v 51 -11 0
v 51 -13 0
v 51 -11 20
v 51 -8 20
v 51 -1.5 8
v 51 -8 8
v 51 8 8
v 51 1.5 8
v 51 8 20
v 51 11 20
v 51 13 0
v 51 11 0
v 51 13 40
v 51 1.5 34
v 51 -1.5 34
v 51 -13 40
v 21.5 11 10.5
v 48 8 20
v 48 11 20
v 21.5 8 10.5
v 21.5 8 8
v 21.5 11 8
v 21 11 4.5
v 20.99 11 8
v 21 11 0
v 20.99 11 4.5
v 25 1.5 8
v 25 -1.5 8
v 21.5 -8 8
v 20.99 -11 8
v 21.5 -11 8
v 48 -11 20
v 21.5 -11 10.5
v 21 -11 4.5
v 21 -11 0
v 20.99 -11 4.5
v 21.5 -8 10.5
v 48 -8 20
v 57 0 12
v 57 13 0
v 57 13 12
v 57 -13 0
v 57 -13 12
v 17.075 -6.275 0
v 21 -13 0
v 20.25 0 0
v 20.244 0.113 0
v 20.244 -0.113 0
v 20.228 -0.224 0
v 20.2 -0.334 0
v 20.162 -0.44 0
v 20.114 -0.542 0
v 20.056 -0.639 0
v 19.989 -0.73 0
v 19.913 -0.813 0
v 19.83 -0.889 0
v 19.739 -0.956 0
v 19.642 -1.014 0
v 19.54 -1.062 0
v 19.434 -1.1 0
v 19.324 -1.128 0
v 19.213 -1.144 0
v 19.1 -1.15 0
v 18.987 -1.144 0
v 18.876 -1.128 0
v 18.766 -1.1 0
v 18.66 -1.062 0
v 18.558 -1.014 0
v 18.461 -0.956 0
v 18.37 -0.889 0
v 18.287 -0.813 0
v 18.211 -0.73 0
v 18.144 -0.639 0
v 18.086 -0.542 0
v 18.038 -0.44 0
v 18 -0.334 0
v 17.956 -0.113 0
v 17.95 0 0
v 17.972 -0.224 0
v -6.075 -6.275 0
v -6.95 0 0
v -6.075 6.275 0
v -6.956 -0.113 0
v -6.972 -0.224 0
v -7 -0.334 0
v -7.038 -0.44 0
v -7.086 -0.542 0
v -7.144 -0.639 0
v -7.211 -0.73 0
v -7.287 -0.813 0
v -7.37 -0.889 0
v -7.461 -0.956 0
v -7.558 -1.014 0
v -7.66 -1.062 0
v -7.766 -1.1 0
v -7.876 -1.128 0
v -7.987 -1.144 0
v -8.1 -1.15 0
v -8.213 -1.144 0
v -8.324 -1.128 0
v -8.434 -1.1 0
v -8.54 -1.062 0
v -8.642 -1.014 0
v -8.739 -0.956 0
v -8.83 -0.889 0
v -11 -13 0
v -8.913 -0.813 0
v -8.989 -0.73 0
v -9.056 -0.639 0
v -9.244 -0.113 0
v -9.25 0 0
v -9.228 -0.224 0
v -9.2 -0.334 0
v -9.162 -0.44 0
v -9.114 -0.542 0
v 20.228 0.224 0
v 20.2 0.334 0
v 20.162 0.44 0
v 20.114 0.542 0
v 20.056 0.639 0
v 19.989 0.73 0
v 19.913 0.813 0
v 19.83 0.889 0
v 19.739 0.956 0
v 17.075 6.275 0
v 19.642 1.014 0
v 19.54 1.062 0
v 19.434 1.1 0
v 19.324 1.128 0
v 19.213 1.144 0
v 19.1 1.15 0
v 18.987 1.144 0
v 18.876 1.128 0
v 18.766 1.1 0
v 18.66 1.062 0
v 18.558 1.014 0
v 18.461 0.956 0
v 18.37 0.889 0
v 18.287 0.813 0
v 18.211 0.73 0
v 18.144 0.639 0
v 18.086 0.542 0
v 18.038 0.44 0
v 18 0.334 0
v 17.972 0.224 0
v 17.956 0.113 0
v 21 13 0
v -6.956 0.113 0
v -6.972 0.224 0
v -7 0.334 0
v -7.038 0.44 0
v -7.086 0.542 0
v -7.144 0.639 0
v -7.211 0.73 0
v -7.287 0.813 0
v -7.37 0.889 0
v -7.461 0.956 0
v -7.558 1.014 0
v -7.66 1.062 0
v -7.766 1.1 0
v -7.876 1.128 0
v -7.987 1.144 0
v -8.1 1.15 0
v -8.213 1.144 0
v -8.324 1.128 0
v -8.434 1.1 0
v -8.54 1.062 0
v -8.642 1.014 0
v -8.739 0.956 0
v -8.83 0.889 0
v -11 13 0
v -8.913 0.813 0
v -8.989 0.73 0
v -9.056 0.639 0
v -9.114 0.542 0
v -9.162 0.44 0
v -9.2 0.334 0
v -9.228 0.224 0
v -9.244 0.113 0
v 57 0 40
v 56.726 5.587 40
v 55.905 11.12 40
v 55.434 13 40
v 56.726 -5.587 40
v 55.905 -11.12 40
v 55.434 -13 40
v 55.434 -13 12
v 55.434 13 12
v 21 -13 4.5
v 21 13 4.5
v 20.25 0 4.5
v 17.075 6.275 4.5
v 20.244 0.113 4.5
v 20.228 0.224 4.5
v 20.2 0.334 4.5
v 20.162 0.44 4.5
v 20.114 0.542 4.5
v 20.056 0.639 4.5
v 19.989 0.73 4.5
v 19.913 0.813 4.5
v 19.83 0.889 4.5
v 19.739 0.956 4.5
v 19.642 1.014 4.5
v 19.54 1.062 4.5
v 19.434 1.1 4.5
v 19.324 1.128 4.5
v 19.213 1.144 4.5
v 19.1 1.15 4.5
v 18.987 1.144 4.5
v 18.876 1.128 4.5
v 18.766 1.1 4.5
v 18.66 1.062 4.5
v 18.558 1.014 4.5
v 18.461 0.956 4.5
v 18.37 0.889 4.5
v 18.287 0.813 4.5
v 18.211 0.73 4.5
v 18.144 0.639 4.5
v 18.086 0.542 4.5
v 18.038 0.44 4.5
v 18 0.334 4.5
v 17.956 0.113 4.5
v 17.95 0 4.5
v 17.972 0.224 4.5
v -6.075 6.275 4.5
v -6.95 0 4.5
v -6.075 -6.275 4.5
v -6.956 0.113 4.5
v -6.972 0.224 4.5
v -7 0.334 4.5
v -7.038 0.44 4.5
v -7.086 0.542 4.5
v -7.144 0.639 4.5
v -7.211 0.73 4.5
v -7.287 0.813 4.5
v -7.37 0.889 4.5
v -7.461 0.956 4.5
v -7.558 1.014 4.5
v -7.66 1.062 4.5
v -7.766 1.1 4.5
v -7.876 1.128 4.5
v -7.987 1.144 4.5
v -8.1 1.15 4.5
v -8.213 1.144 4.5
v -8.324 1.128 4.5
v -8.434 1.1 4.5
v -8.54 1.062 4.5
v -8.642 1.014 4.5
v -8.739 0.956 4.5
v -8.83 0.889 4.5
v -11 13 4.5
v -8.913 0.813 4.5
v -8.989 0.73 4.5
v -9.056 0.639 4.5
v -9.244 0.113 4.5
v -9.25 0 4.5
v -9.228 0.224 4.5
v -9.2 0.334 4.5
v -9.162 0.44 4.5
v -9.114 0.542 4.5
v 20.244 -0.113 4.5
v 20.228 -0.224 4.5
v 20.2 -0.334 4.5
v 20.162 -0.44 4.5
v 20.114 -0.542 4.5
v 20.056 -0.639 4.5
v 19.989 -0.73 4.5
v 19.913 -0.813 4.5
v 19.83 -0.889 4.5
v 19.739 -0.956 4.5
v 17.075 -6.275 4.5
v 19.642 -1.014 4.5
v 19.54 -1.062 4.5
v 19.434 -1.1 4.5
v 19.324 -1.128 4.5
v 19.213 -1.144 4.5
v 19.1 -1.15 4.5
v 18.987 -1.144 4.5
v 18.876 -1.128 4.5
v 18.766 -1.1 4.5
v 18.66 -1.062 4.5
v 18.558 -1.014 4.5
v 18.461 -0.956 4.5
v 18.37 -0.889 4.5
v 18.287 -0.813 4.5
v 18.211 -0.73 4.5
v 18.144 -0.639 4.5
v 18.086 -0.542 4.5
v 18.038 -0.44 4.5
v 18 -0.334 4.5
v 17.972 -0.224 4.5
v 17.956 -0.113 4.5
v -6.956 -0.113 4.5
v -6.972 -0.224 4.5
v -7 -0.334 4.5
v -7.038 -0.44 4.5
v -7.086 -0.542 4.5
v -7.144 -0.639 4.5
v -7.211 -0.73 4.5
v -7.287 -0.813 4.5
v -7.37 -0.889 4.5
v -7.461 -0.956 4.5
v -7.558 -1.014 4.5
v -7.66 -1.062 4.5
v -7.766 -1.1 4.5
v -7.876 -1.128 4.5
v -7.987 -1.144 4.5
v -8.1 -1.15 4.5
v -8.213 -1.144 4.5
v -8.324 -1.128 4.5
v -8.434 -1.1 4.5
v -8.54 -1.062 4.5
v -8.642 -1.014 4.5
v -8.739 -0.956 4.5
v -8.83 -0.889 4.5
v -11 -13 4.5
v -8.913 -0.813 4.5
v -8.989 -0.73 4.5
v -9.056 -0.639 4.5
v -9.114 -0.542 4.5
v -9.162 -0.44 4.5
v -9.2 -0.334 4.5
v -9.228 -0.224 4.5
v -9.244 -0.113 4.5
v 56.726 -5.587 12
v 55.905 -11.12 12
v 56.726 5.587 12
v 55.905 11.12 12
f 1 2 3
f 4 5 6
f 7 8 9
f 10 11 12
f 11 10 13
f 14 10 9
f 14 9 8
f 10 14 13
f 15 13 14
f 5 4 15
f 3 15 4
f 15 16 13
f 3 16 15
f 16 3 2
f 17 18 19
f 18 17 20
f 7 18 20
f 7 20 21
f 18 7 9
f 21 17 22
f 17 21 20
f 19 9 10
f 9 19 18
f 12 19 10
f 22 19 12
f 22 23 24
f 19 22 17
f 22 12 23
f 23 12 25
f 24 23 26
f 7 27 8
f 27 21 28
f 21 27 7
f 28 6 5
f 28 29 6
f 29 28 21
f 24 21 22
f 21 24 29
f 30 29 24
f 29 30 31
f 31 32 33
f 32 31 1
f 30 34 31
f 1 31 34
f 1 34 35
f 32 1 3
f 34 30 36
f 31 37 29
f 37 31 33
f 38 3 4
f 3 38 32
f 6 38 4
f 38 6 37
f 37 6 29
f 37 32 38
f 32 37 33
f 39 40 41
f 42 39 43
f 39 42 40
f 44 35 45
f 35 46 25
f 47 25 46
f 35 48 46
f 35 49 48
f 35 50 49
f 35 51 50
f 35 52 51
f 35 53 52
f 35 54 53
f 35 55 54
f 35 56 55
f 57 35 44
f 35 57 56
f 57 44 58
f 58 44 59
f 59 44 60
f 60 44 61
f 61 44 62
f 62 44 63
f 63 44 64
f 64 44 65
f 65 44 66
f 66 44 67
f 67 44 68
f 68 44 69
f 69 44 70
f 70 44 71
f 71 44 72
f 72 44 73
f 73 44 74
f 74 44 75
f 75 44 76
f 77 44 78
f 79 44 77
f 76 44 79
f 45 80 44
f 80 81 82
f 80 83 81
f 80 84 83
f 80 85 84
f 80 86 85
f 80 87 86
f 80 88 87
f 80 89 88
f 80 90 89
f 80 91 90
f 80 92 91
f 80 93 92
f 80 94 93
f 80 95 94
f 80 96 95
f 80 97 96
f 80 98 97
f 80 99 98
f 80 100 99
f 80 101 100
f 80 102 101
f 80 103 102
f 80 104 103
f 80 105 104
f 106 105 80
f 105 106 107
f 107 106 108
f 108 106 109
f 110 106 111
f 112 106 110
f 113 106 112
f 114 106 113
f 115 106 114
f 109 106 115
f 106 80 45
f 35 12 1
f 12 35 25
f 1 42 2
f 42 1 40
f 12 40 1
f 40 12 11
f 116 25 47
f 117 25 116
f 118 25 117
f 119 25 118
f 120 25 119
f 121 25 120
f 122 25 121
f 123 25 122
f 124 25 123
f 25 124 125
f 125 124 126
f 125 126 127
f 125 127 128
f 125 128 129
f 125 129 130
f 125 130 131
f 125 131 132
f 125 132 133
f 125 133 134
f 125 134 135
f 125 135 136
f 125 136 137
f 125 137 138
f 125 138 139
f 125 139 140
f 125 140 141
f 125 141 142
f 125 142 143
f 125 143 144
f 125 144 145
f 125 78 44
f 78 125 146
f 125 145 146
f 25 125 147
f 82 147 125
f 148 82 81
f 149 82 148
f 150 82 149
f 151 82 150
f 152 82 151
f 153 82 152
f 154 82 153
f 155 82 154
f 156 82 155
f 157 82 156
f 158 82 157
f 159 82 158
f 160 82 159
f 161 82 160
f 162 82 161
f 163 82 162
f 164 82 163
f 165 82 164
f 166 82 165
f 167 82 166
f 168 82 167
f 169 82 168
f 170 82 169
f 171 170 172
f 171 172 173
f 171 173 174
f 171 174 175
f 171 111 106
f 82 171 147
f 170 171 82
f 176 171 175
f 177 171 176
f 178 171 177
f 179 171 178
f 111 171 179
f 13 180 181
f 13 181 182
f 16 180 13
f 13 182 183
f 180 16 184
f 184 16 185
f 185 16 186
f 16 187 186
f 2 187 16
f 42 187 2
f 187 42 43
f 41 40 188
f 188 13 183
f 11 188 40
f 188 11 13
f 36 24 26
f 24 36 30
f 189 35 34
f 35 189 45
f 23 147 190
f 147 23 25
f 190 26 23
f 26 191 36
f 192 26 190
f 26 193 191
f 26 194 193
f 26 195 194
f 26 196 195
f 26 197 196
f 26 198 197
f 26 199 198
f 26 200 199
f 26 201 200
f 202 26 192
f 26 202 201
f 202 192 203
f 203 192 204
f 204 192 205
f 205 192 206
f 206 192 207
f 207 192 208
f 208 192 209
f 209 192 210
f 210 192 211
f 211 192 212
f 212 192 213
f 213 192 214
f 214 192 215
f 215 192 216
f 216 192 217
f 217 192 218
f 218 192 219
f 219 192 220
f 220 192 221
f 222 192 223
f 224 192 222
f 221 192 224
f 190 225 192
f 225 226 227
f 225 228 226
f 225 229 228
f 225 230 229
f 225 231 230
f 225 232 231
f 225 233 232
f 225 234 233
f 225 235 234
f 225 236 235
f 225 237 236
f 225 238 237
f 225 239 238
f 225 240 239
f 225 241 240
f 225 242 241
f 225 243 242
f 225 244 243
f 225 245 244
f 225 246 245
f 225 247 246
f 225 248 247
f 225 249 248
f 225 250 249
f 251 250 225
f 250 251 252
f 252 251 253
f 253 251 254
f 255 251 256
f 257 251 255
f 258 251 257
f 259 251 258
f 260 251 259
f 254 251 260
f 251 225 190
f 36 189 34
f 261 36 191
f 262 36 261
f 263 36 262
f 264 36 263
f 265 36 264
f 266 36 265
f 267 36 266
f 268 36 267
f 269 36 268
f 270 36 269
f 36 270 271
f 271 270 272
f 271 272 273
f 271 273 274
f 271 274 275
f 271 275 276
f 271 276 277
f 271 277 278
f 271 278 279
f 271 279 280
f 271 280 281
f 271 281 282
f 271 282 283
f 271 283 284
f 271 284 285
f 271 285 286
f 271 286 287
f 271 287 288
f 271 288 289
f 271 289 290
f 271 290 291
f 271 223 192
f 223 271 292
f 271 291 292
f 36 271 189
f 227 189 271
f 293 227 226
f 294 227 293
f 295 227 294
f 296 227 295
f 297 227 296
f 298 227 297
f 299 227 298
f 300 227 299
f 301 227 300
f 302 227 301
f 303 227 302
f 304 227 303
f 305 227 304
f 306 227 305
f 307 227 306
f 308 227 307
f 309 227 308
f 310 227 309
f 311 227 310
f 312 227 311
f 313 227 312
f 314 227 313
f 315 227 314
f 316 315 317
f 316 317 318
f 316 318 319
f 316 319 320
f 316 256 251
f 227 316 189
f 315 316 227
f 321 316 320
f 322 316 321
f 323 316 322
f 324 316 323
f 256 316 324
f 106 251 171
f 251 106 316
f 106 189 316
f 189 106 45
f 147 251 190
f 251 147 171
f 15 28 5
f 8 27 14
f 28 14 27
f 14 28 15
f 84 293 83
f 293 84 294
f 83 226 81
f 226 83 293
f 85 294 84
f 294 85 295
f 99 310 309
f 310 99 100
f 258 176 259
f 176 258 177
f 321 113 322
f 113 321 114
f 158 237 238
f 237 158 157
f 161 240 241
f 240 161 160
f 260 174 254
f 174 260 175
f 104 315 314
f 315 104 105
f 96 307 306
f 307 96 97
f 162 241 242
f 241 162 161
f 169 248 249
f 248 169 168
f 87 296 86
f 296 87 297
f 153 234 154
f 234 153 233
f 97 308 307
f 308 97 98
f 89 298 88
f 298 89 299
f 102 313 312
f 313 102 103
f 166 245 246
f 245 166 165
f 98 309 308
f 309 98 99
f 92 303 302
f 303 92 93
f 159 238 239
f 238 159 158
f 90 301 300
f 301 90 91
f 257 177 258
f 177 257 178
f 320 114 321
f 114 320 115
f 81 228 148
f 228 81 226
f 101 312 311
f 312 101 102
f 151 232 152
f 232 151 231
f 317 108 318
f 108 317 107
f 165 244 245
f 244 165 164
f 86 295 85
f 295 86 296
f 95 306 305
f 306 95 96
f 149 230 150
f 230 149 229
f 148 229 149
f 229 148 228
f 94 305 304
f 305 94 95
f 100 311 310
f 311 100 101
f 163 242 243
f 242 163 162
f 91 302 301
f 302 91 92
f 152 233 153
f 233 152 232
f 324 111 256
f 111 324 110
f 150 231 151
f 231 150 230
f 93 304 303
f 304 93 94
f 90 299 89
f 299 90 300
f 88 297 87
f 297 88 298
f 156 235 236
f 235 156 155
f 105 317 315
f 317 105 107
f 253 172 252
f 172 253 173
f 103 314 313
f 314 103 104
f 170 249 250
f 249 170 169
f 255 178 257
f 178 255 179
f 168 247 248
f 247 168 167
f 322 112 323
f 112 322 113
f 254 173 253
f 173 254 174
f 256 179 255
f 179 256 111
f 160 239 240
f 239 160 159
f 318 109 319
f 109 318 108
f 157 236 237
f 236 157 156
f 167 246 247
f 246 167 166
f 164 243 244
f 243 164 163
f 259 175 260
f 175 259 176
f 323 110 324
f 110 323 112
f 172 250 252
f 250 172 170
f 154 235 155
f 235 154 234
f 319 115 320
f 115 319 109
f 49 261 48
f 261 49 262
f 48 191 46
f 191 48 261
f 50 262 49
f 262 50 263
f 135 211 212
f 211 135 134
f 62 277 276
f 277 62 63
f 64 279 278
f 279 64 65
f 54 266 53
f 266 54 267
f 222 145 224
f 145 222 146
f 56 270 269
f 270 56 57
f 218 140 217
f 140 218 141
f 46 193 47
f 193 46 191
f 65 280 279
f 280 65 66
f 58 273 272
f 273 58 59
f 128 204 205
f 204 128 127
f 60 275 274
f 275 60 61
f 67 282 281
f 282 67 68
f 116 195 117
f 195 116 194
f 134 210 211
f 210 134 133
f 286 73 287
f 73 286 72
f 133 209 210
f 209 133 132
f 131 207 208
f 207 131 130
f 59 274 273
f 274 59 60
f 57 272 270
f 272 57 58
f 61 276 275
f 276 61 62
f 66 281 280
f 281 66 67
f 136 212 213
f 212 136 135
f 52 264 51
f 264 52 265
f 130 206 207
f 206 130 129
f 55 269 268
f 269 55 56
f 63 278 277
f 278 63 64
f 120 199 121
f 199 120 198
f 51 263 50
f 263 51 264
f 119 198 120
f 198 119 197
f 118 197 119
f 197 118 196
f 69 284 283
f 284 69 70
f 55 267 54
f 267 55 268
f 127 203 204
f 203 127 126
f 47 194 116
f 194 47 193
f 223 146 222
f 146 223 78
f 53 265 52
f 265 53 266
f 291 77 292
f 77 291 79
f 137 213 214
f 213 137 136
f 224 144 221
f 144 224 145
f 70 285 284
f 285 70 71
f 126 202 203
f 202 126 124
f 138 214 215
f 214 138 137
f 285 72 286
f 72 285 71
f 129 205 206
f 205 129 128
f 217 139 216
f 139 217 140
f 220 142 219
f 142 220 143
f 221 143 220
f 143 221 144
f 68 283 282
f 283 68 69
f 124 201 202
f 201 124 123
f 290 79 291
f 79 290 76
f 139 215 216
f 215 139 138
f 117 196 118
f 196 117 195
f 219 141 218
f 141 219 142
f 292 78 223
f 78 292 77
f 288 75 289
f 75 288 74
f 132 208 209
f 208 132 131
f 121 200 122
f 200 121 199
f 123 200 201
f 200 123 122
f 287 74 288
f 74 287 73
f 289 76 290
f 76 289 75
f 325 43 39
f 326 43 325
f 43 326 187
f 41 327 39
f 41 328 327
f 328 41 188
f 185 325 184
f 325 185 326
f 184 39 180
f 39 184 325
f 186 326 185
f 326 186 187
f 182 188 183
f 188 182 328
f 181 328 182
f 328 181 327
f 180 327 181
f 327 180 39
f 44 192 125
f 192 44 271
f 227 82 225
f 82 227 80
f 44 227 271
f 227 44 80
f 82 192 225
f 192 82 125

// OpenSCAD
// file: lib_v3.scad
// ============================================================================
// Shared geometry helpers for the v3 print set.   include <lib_v3.scad>;
// ============================================================================

// Wedge prism, centred on +X, spanning +/- ang/2, rising from z = 0.
module sector_prism(r, ang, h, seg = 64) {
    steps = max(4, ceil(ang / 2.5));   // ~2.5 deg chords, independent of ang
    linear_extrude(height = h)
        polygon(concat(
            [[0, 0]],
            [for (i = [0 : steps])
                let (a = -ang / 2 + ang * i / steps) [r * cos(a), r * sin(a)]]
        ));
}

// Annular sector prism, centred on +X, rising from z = 0.
module ring_sector(r_in, r_out, ang, h, seg = 64) {
    difference() {
        sector_prism(r_out, ang, h, seg);
        translate([0, 0, -0.05]) cylinder(h = h + 0.1, r = r_in, $fn = seg);
    }
}

module tube(od, id, h) {
    difference() {
        cylinder(h = h, d = od);
        translate([0, 0, -0.05]) cylinder(h = h + 0.1, d = id);
    }
}

// Inward ledge with a 45 deg self-supporting underside. Top face at z_top.
module chamfered_ledge(r_wall, w, z_top) {
    rotate_extrude(convexity = 4)
        polygon([[r_wall - w, z_top],
                 [r_wall,     z_top],
                 [r_wall,     z_top - w]]);
}

// Thin slab used as a hull station for the chute trough.
module station_slab(y, z, w, t = 0.6) {
    translate([-w / 2, y - t / 2, z]) cube([w, t, 0.6]);
}
// file: parameters_v3.scad
// ============================================================================
// Automated Pill Dispenser — v3 "integral deck + open carousel"
// Shared parametric dimensions.   include <parameters_v3.scad>;
//
// z = 0 is the underside of the base body; the base cover hangs below it, so
// the table plane is z = base_z. +Y is the front (chute, tray, camera).
//
// Mechanism: the deck holds the pills in. It has ONE wedge opening. The unit
// parks with the JUST-EMPTIED compartment sitting over that opening, so
// nothing can leak; a 45 deg step sweeps the next compartment across the
// opening and gravity empties it. One servo, no gate, no carousel floor.
//
// Sizing rule that makes the park state leak-proof: the opening's angular
// width must fit inside one compartment's interior with margin to spare, at
// the opening's INNER radius (where a divider subtends the most angle):
//
//     open_deg  <=  360/car_n - 2*asin(div_t / (2*open_r_in)) - 2*park_margin
//     24        <=  45        - 8.6                           - 2*6.2
//
// Widening the opening or moving it inward eats the parking margin.
// ============================================================================

// ---------------------------------------------------------------- print / fit
layer_h        = 0.2;
nozzle_d       = 0.4;
wall           = 3.0;
fit_slip       = 0.35;
fit_press      = 0.10;
m3_pilot_d     = 2.55;
m3_free_d      = 3.35;
m2_pilot_d     = 1.65;
m2_free_d      = 2.30;

// ---------------------------------------------------------------- drum
h_od           = 120.0;
h_id           = h_od - 2 * wall;          // 114
h_ri           = h_id / 2;                 // 57
rim_z          = 94.0;                     // top of the deck body wall

// ---------------------------------------------------------------- deck (A3)
deck_z         = 52.0;                     // deck underside / body split plane
deck_t         = 5.0;                      // structural: the deck IS the drum
deck_top       = deck_z + deck_t;          // 57
deck_fillet    = 1.2;                      // fillet where the wall meets the deck

// The one opening.
open_deg       = 24.0;
open_r_in      = 16.0;
open_r_out     = h_ri;                     // breaches the bore: nothing rides past
open_ctr       = 90.0;                     // front (+Y)
open_relief    = 1.2;                      // lead-in relief on the deck top face

// Centre pilot: the carousel's only bearing. Post on the deck, journal in the
// hub, so the drive shaft never carries weight.
pilot_d        = 10.0;
pilot_engage   = 2.75;

// Body joint: three ears outside the drum. Concentricity between bodies is not
// critical — the running surface and the bore are both on the deck body.
ear_angles     = [30, 150, 270];
ear_w          = 18.0;
ear_out        = 7.0;
ear_t          = 8.0;

// ---------------------------------------------------------------- carousel (C3)
car_n          = 8;
car_pitch      = 360 / car_n;              // 45
car_od         = h_id - 1.4;               // 112.6 -> 0.7 mm sweep gap per side
car_r          = car_od / 2;
div_t          = 2.4;
div_h          = 26.0;
div_chamfer    = 1.6;                      // clears the deck/wall fillet
hub_od         = 28.0;
car_gap        = 0.35;                     // divider to deck running gap
car_z          = deck_top + car_gap;       // 57.35
car_top        = car_z + div_h;            // 83.35
pilot_post_h   = car_gap + pilot_engage;   // 3.1
pilot_bore_d   = pilot_d + fit_slip;       // 10.35

// Derived parking margin, echoed by the parts so a bad edit is loud.
park_margin    = (car_pitch - 2 * asin(div_t / (2 * open_r_in)) - open_deg) / 2;

// ---------------------------------------------------------------- drive train
// Hex socket, deliberately loose: it passes torque but cannot side-load the
// carousel, so the pilot post alone defines the axis.
hex_af         = 7.0;
hex_slip       = 0.40;
hex_depth      = 8.0;

shaft_body_d   = 10.0;
shaft_head_d   = 26.0;
shaft_head_t   = 6.0;

// MG90S
servo_l        = 22.8;
servo_w        = 12.2;
servo_case_h   = 22.5;
servo_tab_span = 32.2;
servo_tab_t    = 2.5;
servo_shaft_in = 5.9;
servo_nose_h   = 6.0;
servo_shaft_h  = 4.7;

horn_disc_d    = 20.4;
horn_disc_h    = 4.2;
horn_hole_r    = 7.5;
horn_screw_n   = 4;
horn_boss_d    = 8.5;

// ---------------------------------------------------------------- bracket (E3)
brk_ctr        = 270.0;                    // rear wall, opposite the chute
brk_pad_w      = 26.0;
brk_pad_h      = 40.0;
brk_pad_t      = 6.0;
brk_pad_z0     = 72.0;
brk_screw_z    = [78.0, 90.0];             // through the wall, from outside
brk_arm_w      = 22.0;
brk_arm_t      = 8.0;
brk_arm_top    = 112.0;                    // = the servo flange plane
// The servo plate has to be thinner than the servo's nose (6 mm from flange to
// case top) or the drive shaft's head fouls it. The beam keeps its full depth.
brk_head_t     = 4.5;
brk_rib_h      = 12.0;
brk_web_h      = 26.0;                     // gusset depth at the wall

// ---------------------------------------------------------------- chute (B3)
chute_wall     = 2.4;
// The notch is only as wide as the pill passage, so the chute's own side walls
// overlap the remaining drum wall and fuse into it. Cut it any wider and the
// chute floats free of the housing.
chute_win_w    = 32.0;
chute_win_z0   = 8.0;                            // below the ramp's underside
chute_win_z1   = deck_z;                         // open right up to the deck

// [ y, floor top z, inside width, side-wall top z, floor thickness ]
// The floor thickens toward the exit so its UNDERSIDE runs at 40-42 deg rather
// than following the 38-40 deg top surface: it keeps the overhang printable and
// puts the material where the chute cantilevers out of the wall.
chute_stations = [
    [17.0, 52.0, 14.0, 51.9, 2.4],
    [45.0, 30.0, 32.0, 51.8, 6.0],
    [57.0, 19.0, 32.0, 36.0, 6.0],
    [70.0,  8.0, 32.0, 24.0, 6.5],
];

// ---------------------------------------------------------------- tray (F3)
tray_y0        = 68.0;
tray_l         = 62.0;
tray_w         = 78.0;
tray_floor     = 2.0;
tray_h         = 14.0;
tray_mouth_h   = 4.0;                      // cut-down wall; the chute lip overhangs it

// ---------------------------------------------------------------- base (G3)
base_t         = 3.0;
base_z         = -base_t;                  // table plane
post_d         = 9.0;
post_r         = h_ri - post_d / 2 + 0.8;
post_angles    = [70, 190, 310];
cable_w        = 12.0;
cable_h        = 6.0;
// main file
// ============================================================================
// v3 PART E3 — servo support bracket
//
// Cantilever from a pad on the inner wall out to the drum axis, gusseted and
// ribbed because it has to hold the MG90S steady against its own reaction
// torque while the carousel turns.
//
// Screws come from OUTSIDE the drum into this pad, so the wall itself carries no
// internal boss. That matters: nothing permanently intrudes into the bore, and
// removing the bracket (which you must do to get at the carousel anyway) leaves
// a clear 114 mm opening to lift the carousel straight out.
//
// Prints flipped, flange plane down — see the note above the top-level call.
// ============================================================================

include <parameters_v3.scad>;
include <lib_v3.scad>;

$fn = 64;

pad_x0     = h_ri - brk_pad_t;             // 51
arm_z0     = brk_arm_top - brk_arm_t;      // 104
head_x0    = -11.0;
head_x1    = 21.0;
head_w     = 26.0;
body_cx    = servo_l / 2 - servo_shaft_in; // 5.5
tab_dx     = servo_tab_span / 2 - 2.5;     // 13.6

// A 3 mm rib tucked just inside each edge of the arm, deepest at the wall where
// the bending moment is. Kept inside the arm's width so neither rib hangs off an
// edge: that would be an unsupported flange, and it would make the arm stiffer on
// one side than the other.
module e3_rib(side) {
    y0 = side > 0 ? brk_arm_w / 2 - 3 : -brk_arm_w / 2;
    hull() {
        translate([pad_x0 - 3, y0, arm_z0 - brk_rib_h]) cube([3, 3, brk_rib_h]);
        translate([head_x1 + 0.5, y0, arm_z0 - 2.5]) cube([3, 3, 2.5]);
    }
}

module servo_bracket_v3() {
    rotate([0, 0, brk_ctr])
    difference() {
        union() {
            // Wall pad.
            translate([pad_x0, -brk_pad_w / 2, brk_pad_z0])
                cube([brk_pad_t, brk_pad_w, brk_pad_h]);
            // Arm + servo head.
            translate([head_x1 - 0.01, -brk_arm_w / 2, arm_z0])
                cube([pad_x0 - head_x1 + 0.02, brk_arm_w, brk_arm_t]);
            translate([head_x0, -head_w / 2, brk_arm_top - brk_head_t])
                cube([head_x1 - head_x0, head_w, brk_head_t]);
            // Gusset web: a 45 deg triangle tying the arm back into the pad.
            translate([0, 1.5, 0]) rotate([90, 0, 0])
                linear_extrude(height = 3)
                    polygon([[pad_x0, arm_z0],
                             [pad_x0, arm_z0 - brk_web_h],
                             [pad_x0 - brk_web_h, arm_z0]]);
            for (s = [-1, 1]) e3_rib(s);
        }

        // MG90S pocket — output shaft lands on the drum axis.
        translate([-servo_shaft_in - fit_slip / 2, -(servo_w + fit_slip) / 2,
                   brk_arm_top - brk_head_t - 0.1])
            cube([servo_l + fit_slip, servo_w + fit_slip, brk_head_t + 0.2]);
        for (s = [-1, 1])
            translate([body_cx + s * tab_dx, 0, brk_arm_top - brk_head_t - 0.1])
                cylinder(h = brk_head_t + 0.2, d = m2_free_d);

        // Wall screws (pilots) — driven in from outside the drum.
        for (z = brk_screw_z)
            translate([h_ri + 0.5, 0, z]) rotate([0, 90, 0])
                cylinder(h = brk_pad_t + 1.0, d = m3_pilot_d);

        // Follow the bore so the pad sits flush against the curved wall.
        difference() {
            cylinder(h = 200, d = h_od + 40, center = true);
            cylinder(h = 200, d = h_id, center = true);
        }
    }
}

// The module works in assembly coordinates so the preview can use it as-is; the
// top-level call is the print orientation. The pad's top, the arm's top and the
// servo plate's top all sit in the flange plane, so flipping about that plane
// lands the part on one large flat footprint. Everything else — pad, gusset,
// ribs — then grows upward from it, so nothing needs support.
translate([0, 0, brk_arm_top]) rotate([180, 0, 0])
    rotate([0, 0, -brk_ctr]) servo_bracket_v3();

echo(str("E3 bracket: reach ", h_ri, " mm, arm ", brk_arm_w, " x ", brk_arm_t,
         " + ", brk_rib_h, " mm ribs, flange plane z ", brk_arm_top));
